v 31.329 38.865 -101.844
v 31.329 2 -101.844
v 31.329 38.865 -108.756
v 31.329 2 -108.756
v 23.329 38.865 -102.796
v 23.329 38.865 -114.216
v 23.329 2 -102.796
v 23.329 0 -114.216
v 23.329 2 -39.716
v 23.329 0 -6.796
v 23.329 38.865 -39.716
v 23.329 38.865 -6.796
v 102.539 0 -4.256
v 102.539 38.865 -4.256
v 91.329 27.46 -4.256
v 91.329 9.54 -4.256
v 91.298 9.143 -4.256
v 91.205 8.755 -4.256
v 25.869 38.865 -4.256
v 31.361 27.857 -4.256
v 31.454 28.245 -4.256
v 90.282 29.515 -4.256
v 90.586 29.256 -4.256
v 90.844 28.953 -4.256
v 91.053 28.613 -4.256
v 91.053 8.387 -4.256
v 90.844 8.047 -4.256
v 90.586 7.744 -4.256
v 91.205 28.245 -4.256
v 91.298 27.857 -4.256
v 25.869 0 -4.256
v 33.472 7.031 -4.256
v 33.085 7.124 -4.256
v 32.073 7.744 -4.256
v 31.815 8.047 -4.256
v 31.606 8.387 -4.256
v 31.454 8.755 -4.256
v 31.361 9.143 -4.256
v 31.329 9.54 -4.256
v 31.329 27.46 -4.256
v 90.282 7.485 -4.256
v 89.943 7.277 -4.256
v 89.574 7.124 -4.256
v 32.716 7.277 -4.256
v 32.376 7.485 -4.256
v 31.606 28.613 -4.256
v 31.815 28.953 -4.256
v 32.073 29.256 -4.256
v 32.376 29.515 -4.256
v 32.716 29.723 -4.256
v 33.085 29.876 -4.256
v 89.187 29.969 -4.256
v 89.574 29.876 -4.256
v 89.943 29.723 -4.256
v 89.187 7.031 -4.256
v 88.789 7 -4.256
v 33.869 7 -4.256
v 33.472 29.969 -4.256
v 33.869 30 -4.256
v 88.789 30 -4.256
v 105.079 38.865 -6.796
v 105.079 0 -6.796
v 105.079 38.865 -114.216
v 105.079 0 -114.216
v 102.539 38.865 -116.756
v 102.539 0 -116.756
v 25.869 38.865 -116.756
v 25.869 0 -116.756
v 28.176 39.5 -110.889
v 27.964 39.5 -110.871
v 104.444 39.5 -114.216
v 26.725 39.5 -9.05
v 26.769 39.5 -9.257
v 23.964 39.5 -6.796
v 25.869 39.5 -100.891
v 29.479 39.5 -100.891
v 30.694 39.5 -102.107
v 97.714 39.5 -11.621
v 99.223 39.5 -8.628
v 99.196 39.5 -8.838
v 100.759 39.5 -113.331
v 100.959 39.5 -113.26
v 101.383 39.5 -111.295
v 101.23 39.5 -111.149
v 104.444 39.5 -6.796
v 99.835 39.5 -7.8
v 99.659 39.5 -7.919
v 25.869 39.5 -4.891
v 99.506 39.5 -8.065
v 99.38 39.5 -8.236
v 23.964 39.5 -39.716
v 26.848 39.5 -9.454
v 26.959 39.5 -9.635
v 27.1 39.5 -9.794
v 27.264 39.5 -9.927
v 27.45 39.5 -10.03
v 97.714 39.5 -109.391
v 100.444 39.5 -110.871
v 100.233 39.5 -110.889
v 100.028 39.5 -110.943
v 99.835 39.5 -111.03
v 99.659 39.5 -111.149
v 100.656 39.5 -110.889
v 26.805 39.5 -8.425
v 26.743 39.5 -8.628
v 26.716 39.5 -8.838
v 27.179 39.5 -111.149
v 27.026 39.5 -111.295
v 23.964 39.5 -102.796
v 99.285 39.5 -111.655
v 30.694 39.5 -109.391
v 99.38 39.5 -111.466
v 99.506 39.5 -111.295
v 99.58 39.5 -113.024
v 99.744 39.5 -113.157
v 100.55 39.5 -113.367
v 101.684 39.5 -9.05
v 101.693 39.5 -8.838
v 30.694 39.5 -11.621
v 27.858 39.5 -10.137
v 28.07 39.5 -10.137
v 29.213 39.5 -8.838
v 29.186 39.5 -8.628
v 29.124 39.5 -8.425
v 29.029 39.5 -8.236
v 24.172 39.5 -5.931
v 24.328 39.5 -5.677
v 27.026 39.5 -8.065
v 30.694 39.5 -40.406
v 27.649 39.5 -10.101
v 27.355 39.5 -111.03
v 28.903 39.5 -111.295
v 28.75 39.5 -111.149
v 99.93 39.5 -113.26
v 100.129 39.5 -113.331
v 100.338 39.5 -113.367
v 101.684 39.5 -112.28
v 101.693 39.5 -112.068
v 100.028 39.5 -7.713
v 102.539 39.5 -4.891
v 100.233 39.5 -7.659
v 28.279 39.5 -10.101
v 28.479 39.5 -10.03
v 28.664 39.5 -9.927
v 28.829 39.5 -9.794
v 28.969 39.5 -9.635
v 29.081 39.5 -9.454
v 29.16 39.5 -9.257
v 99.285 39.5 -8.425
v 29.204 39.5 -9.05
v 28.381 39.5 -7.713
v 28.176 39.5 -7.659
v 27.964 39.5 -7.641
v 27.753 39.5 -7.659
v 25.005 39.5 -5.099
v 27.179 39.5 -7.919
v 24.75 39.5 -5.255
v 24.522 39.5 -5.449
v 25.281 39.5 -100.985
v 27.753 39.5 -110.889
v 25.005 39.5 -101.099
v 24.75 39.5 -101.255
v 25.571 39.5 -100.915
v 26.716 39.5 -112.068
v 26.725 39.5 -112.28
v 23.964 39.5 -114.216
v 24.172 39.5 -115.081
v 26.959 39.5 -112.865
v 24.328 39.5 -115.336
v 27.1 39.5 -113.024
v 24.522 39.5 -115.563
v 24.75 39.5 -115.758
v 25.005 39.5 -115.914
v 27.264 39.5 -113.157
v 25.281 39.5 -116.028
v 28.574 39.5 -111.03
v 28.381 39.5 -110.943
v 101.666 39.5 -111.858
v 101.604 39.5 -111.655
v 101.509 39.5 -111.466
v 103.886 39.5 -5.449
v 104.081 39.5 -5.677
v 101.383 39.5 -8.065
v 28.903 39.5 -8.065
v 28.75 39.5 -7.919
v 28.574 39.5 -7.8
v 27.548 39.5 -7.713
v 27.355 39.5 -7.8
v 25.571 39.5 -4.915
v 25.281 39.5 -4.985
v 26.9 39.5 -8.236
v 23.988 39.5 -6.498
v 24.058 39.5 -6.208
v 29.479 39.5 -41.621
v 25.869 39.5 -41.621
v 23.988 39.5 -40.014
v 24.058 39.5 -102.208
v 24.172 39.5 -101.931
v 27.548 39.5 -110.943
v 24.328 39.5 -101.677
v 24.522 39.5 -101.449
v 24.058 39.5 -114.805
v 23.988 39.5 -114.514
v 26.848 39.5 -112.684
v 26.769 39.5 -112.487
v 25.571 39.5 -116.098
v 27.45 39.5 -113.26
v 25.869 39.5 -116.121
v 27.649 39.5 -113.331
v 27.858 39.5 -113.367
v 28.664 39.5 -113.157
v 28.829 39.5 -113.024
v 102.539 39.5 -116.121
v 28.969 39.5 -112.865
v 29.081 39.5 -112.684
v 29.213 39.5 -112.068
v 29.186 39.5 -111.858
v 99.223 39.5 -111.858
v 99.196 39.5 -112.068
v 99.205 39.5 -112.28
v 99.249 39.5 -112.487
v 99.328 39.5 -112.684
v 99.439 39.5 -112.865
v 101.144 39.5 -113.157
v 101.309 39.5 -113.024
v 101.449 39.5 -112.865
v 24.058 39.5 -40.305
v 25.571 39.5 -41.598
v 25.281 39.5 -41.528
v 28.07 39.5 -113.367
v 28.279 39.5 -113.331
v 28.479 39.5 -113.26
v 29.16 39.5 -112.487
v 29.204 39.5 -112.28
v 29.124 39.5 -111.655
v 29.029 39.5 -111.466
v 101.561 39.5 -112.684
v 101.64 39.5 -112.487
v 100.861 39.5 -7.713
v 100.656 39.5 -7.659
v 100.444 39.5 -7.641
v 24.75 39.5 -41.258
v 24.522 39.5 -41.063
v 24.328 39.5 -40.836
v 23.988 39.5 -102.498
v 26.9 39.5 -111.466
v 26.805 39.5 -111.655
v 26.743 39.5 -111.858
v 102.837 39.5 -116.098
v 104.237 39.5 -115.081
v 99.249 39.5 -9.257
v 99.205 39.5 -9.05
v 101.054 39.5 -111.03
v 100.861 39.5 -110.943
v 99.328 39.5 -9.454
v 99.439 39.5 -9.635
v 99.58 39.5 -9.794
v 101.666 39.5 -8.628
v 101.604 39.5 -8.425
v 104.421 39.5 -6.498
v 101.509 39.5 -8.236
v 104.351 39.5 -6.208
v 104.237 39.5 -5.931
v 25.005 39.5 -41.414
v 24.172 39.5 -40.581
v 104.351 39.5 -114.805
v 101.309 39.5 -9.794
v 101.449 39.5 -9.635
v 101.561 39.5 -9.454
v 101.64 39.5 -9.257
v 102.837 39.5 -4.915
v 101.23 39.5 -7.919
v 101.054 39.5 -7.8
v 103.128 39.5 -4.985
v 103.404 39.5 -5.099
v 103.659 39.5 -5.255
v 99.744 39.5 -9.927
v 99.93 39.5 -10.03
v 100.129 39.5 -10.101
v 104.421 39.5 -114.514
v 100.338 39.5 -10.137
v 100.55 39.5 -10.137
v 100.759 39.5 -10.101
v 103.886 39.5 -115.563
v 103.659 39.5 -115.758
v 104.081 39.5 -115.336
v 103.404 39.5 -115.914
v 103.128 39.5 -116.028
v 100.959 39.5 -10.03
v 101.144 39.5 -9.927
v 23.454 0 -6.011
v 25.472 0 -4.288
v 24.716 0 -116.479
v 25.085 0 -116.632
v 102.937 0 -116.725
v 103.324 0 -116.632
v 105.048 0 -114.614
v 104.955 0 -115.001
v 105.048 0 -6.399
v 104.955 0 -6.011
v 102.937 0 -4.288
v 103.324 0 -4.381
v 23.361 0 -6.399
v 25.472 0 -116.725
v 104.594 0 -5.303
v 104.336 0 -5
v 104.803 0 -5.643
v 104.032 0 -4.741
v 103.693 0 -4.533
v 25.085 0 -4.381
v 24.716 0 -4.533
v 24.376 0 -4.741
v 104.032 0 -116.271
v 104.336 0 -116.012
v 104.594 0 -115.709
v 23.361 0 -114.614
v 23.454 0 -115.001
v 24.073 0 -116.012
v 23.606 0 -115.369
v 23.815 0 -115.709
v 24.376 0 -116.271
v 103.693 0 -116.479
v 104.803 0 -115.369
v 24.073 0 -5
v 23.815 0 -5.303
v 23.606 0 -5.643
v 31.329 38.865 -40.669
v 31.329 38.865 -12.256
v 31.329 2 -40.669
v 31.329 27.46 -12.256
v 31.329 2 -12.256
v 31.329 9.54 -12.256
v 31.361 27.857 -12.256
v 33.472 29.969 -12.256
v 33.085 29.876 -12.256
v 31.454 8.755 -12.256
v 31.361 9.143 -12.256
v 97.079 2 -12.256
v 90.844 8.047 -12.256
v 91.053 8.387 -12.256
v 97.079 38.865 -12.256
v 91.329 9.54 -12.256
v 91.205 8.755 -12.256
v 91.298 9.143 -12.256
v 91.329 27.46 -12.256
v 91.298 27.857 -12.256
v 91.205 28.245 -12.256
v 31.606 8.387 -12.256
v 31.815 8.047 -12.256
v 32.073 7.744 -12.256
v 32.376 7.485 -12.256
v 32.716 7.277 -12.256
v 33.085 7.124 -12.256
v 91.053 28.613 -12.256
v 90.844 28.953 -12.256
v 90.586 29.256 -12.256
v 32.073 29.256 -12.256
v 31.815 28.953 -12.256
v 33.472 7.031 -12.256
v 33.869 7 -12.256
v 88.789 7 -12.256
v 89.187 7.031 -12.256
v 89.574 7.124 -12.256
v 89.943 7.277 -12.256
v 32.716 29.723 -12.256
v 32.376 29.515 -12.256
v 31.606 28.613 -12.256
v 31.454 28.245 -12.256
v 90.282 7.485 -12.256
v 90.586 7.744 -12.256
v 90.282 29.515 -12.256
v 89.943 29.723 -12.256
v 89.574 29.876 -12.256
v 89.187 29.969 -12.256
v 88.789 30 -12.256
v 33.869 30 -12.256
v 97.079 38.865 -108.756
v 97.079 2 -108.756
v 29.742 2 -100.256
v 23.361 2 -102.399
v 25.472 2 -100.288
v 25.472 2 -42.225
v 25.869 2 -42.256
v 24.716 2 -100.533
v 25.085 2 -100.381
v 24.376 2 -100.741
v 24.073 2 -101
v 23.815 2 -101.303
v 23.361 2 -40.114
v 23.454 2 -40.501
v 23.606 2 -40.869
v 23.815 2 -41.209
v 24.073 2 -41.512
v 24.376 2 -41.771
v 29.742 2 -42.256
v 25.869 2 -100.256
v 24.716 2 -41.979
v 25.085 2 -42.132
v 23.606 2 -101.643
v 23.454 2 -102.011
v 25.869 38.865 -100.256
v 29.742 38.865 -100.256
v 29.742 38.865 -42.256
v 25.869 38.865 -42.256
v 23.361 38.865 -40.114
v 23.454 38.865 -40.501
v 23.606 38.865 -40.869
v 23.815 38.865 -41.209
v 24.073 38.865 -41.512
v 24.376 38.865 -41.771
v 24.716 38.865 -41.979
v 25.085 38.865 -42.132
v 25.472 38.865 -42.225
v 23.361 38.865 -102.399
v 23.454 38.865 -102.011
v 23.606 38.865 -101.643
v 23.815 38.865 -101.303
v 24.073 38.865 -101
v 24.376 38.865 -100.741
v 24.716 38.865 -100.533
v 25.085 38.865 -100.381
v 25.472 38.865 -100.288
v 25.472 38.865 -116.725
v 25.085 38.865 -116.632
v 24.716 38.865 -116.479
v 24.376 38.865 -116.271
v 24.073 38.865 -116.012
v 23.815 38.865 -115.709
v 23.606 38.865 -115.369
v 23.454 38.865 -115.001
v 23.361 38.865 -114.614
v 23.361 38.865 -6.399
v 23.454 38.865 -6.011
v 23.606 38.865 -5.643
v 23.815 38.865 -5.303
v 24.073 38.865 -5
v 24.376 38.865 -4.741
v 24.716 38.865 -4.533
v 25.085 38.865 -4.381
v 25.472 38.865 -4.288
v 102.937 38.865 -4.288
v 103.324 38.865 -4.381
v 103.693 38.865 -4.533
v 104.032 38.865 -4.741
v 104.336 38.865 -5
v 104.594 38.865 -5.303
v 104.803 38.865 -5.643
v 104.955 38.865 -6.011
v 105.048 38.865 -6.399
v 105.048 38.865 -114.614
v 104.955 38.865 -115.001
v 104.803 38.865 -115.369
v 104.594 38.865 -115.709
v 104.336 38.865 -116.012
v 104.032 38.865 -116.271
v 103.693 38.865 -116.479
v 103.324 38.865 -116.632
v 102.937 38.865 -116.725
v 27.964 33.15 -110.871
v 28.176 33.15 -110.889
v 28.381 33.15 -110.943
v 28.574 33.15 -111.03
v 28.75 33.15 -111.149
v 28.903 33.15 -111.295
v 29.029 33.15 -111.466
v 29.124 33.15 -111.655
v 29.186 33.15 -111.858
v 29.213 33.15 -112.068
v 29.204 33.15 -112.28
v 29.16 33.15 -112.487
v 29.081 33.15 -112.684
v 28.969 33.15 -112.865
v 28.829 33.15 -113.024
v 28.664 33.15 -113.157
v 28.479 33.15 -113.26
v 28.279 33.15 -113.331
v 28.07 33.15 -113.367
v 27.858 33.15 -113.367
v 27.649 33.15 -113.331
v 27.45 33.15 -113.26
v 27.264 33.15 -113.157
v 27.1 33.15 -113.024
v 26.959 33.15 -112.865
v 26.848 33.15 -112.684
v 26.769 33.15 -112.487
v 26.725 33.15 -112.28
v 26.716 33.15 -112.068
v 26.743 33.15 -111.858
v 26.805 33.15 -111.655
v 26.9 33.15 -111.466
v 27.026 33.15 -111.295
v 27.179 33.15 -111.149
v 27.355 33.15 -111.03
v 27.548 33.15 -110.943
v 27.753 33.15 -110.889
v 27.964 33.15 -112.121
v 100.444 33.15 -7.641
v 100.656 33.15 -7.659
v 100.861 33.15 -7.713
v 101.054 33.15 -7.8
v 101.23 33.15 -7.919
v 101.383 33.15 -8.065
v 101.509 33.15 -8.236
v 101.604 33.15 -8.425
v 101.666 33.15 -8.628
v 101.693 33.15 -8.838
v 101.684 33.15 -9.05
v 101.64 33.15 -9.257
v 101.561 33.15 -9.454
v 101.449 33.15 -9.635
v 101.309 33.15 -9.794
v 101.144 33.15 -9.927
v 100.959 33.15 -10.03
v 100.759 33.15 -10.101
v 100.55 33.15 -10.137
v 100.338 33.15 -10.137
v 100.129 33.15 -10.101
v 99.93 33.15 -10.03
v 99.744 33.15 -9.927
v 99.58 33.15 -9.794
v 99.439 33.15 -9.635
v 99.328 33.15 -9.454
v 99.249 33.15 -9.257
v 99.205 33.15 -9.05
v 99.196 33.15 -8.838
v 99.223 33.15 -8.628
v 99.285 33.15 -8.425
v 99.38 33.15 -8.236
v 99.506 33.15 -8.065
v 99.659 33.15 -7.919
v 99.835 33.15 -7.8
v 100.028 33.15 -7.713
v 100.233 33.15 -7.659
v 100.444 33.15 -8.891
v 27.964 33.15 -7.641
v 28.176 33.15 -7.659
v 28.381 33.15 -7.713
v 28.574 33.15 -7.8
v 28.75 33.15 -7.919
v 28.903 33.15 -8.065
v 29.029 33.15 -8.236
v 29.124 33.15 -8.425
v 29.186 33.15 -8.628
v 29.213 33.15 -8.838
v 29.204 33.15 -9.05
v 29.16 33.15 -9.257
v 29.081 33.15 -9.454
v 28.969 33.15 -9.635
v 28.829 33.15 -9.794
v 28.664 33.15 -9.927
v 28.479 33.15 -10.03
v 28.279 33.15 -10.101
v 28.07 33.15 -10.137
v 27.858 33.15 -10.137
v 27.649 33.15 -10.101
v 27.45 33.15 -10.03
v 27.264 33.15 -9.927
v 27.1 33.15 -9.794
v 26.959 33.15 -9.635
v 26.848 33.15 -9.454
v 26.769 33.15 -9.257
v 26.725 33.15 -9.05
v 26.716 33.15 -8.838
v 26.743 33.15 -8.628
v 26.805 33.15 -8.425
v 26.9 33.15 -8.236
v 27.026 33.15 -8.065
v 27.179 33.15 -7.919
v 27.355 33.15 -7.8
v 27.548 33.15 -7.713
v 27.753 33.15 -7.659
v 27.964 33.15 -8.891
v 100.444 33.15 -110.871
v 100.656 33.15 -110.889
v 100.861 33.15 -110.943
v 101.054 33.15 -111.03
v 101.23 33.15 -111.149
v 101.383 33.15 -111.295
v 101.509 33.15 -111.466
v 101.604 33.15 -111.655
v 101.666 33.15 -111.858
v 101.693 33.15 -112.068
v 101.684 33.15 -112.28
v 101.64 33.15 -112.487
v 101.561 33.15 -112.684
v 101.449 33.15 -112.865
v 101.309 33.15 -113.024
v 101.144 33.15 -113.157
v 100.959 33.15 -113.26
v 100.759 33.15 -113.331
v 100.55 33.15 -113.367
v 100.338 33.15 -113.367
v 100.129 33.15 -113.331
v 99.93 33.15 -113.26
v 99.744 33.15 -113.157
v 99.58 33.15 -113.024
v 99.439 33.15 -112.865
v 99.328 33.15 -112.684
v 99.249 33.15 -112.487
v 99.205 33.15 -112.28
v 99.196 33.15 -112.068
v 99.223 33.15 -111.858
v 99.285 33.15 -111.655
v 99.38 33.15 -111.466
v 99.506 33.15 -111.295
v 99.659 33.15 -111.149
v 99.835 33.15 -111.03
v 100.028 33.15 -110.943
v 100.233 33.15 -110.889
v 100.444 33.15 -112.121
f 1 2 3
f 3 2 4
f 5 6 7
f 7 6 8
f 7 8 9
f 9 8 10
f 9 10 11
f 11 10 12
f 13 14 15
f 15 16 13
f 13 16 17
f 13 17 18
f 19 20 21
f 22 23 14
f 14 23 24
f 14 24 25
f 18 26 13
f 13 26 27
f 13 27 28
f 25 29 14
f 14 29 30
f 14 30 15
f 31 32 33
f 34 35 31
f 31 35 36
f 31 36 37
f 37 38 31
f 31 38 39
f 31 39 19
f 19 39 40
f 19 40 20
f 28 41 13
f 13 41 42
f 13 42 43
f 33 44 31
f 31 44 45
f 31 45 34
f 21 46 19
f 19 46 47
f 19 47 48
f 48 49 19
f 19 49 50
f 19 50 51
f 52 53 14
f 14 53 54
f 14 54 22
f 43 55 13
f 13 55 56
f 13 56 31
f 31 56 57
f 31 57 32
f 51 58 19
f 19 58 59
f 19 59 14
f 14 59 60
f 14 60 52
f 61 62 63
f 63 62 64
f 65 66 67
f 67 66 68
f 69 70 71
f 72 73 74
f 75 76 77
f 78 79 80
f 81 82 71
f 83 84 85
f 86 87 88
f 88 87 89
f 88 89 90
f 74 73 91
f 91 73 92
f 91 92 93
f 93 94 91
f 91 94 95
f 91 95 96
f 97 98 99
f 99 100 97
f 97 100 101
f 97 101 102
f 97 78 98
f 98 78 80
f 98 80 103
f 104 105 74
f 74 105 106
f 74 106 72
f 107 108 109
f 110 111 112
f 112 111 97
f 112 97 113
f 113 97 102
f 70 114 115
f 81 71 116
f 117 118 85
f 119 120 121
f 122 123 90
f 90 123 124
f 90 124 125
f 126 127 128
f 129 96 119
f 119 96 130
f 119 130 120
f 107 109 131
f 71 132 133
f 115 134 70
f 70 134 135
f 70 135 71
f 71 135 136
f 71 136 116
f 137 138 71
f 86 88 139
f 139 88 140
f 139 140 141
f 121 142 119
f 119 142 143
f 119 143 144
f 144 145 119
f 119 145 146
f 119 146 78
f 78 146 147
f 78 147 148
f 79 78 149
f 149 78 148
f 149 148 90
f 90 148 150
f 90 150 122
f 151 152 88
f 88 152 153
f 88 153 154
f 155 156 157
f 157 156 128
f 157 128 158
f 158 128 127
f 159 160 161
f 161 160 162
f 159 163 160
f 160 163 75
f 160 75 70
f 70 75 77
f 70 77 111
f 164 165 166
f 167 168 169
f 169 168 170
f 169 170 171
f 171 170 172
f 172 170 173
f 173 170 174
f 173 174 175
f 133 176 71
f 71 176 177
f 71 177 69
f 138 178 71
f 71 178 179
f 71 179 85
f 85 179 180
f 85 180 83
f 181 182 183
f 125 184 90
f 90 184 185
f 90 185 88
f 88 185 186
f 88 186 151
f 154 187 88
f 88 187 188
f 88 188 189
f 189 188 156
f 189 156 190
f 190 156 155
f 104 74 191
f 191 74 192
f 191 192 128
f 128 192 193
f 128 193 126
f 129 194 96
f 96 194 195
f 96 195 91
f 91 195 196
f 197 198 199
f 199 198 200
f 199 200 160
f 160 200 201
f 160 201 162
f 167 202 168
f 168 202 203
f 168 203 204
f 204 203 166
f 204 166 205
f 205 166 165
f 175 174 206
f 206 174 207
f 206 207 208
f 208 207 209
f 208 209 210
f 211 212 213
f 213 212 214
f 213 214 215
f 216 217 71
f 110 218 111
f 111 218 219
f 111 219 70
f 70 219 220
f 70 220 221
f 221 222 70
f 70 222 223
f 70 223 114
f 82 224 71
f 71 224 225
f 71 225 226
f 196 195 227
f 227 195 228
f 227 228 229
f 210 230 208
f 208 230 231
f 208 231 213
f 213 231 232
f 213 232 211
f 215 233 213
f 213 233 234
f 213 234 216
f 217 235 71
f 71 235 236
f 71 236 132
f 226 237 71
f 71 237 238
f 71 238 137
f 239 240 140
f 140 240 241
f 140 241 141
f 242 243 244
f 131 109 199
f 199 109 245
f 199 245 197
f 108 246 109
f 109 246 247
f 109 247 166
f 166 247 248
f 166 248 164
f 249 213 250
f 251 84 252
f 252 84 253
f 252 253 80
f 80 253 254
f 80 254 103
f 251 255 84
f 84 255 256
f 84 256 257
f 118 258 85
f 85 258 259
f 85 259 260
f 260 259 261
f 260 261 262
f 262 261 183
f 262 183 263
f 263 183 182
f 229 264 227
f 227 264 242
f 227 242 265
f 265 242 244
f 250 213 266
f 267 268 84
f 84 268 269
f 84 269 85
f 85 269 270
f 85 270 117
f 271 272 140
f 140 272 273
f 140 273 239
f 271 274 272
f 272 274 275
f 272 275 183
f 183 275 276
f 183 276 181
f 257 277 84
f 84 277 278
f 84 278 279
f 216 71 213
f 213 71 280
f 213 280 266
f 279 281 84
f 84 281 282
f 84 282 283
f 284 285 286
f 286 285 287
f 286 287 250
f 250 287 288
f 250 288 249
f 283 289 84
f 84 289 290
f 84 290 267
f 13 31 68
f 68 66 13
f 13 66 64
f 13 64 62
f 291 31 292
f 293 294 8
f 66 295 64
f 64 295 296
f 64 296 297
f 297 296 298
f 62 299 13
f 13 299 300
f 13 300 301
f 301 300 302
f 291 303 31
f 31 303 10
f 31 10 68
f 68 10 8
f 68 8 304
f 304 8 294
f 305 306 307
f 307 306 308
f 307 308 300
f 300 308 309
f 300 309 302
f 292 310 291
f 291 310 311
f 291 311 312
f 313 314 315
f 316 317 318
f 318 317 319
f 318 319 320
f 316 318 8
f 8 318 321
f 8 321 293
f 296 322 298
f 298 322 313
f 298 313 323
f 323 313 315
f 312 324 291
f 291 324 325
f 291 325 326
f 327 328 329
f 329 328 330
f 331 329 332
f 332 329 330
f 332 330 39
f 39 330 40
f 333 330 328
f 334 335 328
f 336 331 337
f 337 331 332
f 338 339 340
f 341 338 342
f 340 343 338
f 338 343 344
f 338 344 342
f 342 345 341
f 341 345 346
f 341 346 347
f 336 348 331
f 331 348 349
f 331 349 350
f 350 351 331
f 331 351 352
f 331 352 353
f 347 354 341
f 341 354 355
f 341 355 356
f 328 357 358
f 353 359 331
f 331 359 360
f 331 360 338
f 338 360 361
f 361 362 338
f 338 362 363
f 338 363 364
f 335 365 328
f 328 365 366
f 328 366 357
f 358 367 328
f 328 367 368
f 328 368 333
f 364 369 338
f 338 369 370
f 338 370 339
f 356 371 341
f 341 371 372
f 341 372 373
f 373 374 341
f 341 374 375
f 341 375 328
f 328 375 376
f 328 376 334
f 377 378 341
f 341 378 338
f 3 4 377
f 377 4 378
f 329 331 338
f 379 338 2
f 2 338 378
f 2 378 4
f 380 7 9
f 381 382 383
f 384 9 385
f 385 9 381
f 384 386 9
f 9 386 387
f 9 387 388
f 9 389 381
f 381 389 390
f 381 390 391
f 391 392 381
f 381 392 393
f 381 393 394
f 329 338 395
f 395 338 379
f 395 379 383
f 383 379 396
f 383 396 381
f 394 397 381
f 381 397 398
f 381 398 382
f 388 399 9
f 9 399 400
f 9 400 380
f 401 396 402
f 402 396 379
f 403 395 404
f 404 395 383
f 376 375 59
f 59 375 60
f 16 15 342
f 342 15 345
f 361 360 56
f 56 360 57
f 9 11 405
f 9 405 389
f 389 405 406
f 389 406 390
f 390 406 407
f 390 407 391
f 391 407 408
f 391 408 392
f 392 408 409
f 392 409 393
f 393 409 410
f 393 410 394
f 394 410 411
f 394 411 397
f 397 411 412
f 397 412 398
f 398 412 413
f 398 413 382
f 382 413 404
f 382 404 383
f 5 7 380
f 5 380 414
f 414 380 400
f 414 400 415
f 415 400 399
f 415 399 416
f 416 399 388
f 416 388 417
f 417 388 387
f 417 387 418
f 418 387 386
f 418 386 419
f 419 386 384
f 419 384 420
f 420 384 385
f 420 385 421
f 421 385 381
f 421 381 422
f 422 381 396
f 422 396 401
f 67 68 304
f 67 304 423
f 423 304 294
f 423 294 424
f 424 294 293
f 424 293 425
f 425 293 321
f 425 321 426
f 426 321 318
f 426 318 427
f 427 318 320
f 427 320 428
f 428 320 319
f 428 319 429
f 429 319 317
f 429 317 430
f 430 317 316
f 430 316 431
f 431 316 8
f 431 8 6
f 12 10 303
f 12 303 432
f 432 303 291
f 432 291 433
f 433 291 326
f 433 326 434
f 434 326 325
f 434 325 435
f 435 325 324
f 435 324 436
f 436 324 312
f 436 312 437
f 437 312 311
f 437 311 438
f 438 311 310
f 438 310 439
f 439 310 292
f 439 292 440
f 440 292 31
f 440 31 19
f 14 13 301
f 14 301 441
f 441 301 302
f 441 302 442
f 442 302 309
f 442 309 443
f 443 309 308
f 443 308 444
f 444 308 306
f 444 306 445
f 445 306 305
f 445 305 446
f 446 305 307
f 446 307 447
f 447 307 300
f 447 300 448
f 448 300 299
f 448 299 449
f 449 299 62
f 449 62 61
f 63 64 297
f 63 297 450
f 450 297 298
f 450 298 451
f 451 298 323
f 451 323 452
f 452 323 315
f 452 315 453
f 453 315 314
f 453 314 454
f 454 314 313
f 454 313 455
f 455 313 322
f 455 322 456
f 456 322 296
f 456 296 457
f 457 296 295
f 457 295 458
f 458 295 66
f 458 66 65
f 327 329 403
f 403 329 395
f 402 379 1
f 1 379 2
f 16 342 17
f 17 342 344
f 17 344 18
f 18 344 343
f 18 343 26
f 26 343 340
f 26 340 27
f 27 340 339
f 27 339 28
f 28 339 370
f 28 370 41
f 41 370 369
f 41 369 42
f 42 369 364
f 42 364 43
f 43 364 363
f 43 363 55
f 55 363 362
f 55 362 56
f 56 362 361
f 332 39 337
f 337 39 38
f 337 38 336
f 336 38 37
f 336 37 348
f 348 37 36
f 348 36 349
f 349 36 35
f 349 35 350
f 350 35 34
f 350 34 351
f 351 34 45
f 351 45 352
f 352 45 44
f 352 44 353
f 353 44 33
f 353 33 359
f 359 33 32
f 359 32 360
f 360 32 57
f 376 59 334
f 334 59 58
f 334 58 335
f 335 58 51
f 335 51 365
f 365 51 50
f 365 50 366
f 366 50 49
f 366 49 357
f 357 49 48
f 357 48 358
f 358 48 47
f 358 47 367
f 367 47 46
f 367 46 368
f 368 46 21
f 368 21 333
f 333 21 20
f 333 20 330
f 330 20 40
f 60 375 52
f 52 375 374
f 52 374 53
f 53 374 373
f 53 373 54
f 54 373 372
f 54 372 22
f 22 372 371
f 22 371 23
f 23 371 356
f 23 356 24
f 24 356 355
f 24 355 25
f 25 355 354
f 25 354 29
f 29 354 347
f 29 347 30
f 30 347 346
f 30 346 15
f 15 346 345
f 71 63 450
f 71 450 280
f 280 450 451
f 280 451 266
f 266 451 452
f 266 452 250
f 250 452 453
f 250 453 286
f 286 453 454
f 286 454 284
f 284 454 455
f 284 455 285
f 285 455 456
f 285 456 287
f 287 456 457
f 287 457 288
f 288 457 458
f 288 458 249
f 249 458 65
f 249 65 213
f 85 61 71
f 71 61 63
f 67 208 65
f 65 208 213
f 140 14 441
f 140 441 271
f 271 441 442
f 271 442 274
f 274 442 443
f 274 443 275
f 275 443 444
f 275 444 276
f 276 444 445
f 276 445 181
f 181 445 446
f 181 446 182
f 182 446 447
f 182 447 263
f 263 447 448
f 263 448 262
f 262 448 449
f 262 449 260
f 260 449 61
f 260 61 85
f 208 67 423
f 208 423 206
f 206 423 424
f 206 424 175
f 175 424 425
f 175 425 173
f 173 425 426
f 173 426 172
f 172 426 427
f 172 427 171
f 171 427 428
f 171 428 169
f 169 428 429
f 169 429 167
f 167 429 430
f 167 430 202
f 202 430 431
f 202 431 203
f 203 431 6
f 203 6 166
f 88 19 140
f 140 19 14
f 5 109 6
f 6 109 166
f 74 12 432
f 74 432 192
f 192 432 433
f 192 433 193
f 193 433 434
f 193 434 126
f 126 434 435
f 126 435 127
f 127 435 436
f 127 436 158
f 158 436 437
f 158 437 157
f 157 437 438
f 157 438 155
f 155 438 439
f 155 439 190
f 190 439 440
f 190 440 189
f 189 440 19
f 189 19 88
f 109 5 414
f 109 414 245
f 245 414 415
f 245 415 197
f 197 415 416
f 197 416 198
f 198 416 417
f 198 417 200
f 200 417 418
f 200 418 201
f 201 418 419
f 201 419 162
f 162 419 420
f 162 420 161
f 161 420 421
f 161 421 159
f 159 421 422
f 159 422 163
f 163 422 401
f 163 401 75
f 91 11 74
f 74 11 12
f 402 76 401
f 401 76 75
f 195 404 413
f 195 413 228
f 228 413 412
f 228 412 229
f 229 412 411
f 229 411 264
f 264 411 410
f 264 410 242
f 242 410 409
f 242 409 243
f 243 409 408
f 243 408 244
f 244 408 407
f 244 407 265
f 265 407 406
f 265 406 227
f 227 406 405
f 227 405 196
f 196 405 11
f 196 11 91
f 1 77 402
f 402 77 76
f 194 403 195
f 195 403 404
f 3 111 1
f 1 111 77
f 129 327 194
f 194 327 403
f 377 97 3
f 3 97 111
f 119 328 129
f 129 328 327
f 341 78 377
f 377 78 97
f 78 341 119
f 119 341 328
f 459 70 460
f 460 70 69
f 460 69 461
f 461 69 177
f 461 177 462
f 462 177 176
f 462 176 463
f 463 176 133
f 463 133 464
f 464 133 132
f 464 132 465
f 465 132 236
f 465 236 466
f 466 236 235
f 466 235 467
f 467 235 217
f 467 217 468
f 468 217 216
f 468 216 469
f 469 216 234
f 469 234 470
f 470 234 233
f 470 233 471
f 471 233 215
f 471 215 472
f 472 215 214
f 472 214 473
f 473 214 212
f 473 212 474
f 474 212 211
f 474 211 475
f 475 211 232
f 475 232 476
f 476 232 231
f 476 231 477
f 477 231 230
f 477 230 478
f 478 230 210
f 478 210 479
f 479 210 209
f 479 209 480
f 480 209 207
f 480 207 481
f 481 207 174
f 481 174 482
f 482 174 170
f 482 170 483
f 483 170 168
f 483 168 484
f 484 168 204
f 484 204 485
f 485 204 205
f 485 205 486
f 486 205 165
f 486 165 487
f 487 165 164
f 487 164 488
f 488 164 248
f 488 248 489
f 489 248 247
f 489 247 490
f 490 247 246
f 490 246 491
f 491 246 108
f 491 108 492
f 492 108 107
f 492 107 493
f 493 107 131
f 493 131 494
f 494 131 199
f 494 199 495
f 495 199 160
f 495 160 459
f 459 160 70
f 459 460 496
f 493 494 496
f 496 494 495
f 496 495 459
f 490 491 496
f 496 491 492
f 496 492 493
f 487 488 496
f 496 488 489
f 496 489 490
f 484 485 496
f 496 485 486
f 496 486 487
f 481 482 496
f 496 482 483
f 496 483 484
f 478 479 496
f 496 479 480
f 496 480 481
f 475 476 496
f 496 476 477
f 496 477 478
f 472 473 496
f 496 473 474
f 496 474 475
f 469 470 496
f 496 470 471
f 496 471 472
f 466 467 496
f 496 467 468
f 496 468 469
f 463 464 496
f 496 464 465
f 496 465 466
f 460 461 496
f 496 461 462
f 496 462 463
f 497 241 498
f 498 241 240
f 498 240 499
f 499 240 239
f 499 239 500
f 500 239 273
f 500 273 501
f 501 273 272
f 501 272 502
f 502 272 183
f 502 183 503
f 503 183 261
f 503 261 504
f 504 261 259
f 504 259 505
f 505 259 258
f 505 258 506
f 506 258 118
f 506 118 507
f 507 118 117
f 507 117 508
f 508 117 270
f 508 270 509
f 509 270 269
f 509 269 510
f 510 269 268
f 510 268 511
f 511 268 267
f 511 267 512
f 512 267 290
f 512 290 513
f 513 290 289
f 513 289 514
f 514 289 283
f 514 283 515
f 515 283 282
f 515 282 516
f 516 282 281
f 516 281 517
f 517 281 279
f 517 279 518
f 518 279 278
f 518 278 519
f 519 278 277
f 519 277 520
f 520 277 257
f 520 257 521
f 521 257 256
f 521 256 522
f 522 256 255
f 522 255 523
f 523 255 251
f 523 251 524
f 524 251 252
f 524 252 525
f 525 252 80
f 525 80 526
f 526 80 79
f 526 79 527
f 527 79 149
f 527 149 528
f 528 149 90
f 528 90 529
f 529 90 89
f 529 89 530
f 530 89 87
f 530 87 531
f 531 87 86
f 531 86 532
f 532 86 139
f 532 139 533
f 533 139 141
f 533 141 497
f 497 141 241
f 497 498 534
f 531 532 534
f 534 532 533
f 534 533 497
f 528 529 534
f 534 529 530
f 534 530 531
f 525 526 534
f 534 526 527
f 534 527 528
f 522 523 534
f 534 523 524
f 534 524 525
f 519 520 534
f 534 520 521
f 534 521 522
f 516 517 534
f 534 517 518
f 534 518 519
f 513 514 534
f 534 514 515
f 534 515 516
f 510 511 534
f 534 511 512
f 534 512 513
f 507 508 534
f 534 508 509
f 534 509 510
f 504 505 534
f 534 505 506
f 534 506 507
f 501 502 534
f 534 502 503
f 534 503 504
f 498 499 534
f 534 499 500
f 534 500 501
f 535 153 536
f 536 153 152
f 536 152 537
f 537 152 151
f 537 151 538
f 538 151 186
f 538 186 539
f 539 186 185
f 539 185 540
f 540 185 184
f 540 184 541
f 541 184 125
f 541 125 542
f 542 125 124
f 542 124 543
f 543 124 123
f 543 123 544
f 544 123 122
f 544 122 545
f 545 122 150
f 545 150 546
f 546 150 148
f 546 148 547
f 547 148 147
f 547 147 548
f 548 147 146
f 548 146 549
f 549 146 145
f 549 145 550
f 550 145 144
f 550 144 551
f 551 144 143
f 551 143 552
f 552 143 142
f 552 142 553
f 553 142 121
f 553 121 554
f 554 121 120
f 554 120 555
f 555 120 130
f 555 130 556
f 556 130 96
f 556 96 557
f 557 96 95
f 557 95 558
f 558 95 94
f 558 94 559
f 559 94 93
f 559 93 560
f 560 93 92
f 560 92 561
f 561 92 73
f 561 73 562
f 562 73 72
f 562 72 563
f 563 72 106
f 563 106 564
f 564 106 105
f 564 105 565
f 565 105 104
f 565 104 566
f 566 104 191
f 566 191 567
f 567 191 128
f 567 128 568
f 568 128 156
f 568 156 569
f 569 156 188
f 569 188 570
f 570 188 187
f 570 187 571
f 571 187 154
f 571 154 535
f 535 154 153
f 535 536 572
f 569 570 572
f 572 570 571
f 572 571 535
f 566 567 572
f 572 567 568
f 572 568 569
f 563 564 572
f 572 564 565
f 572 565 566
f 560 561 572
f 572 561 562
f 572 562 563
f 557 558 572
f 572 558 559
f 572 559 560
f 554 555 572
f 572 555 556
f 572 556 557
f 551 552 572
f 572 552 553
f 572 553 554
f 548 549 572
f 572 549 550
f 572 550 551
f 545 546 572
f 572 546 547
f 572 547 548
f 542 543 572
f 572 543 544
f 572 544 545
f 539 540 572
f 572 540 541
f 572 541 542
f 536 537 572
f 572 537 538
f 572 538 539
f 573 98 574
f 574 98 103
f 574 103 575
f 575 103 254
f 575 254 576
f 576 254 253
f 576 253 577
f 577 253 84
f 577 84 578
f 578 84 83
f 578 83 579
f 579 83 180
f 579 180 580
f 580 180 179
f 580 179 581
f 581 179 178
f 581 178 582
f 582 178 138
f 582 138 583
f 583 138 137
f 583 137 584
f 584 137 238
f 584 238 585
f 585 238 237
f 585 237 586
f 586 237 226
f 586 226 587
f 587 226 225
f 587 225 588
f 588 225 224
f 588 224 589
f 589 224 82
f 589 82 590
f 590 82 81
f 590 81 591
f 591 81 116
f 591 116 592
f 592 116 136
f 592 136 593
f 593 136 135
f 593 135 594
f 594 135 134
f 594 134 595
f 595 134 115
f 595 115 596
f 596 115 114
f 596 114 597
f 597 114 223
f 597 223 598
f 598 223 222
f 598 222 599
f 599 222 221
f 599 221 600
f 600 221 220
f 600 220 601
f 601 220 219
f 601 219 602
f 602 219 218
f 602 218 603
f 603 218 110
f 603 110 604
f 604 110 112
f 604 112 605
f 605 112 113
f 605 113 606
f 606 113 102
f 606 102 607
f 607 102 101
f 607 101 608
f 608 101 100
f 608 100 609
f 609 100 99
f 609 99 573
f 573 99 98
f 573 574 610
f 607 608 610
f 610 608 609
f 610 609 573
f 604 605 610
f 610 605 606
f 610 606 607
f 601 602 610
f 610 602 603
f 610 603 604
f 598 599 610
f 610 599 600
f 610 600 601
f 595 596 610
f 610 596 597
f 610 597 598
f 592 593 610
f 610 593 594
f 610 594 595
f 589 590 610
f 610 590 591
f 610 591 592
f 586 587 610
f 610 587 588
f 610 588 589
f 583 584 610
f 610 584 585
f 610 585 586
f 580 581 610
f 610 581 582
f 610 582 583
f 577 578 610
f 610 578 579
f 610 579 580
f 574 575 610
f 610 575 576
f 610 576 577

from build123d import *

# Parameters (mm, degrees)
SKETCH1_W                 = 81.750000004
SKETCH1_H                 = 112.500000004
BOSS_EXTRUDE3_DEPTH       = 39.5
SHELL1_T                  = -8.000000002
SHELL1_THICKNESS_2_FACE_W = 96.5
SHELL1_THICKNESS_2_FACE_H = 65.75
SHELL1_THICKNESS_2_DEPTH  = 6.000000002
CUT_EXTRUDE1_REACH        = 149.903
SKETCH2_W                 = 58
SKETCH2_H                 = 37.5
CUT_EXTRUDE2_REACH        = 160.928
SKETCH3_W                 = 60
SKETCH3_H                 = 23
FILLET1_R                 = 2.54
CHAMFER1_SIZE             = 1.5875
FILLET2_R                 = 2.54
CHAMFER2_SIZE             = 0.635
SKETCH4_R                 = 1.25
CUT_EXTRUDE3_DEPTH        = 6.35


with BuildPart() as part:
    # Sketch1 → Boss-Extrude3 (new body)
    with BuildSketch(Plane(origin=(0, 0, 0), x_dir=(1, 0, 0), z_dir=(0, 1, 0))):
        with Locations((64.204457377, 60.506337211)):
            Rectangle(SKETCH1_W, SKETCH1_H)
    extrude(amount=BOSS_EXTRUDE3_DEPTH)

    # Shell1
    shell1_openings = [part.faces().sort_by_distance(p)[0] for p in [
        (64.204457377, 39.5, -60.506337211),
    ]]
    offset(amount=SHELL1_T, openings=shell1_openings, kind=Kind.INTERSECTION)

    # Shell1 thickness 2 face (on inner face of the shell) → Shell1 thickness 2 (cut)
    with BuildSketch(Plane(origin=(64.204457377, 8.000000002, -60.506337211), x_dir=(0, 0, -1), z_dir=(0, -1, 0))):
        Rectangle(SHELL1_THICKNESS_2_FACE_W, SHELL1_THICKNESS_2_FACE_H)
    extrude(amount=SHELL1_THICKNESS_2_DEPTH, mode=Mode.SUBTRACT)

    # Sketch2 → Cut-Extrude1 (cut, up to next)
    with BuildSketch(Plane.ZY.offset(-23.329457375), mode=Mode.PRIVATE) as cut_extrude1_sk1:
        with Locations((-71.256337211, 20.75)):
            Rectangle(SKETCH2_W, SKETCH2_H)
    cut_extrude1_tool1 = extrude(cut_extrude1_sk1.sketch, amount=-CUT_EXTRUDE1_REACH, mode=Mode.PRIVATE) & part.part
    add(cut_extrude1_tool1.solids().sort_by_distance((23.329457, 20.75, -71.256337))[0], mode=Mode.SUBTRACT)

    # Sketch3 → Cut-Extrude2 (cut, up to next)
    with BuildSketch(Plane.XY.offset(-4.256337209), mode=Mode.PRIVATE) as cut_extrude2_sk1:
        with Locations((61.329457377, 18.5)):
            Rectangle(SKETCH3_W, SKETCH3_H)
    cut_extrude2_tool1 = extrude(cut_extrude2_sk1.sketch, amount=-CUT_EXTRUDE2_REACH, mode=Mode.PRIVATE) & part.part
    add(cut_extrude2_tool1.solids().sort_by_distance((61.329457, 18.5, -4.256337))[0], mode=Mode.SUBTRACT)

    # Fillet1
    fillet1_edges = [part.edges().sort_by_distance(p)[0] for p in [
        (23.329457375, 20.75, -100.256337211),
        (23.329457375, 20.75, -42.256337211),
        (23.329457375, 19.75, -116.756337213),
        (105.079457379, 19.75, -116.756337213),
        (105.079457379, 19.75, -4.256337209),
        (23.329457375, 19.75, -4.256337209),
    ]]
    fillet(fillet1_edges, radius=FILLET1_R)

    # Chamfer1
    chamfer1_edges = [part.edges().sort_by_distance(p)[0] for p in [
        (31.329457377, 20.75, -100.256337211),
        (31.329457377, 20.75, -42.256337211),
    ]]
    chamfer(chamfer1_edges, length=CHAMFER1_SIZE)

    # Fillet2
    fillet2_edges = [part.edges().sort_by_distance(p)[0] for p in [
        (31.329457377, 7, -8.25633721),
        (31.329457377, 30, -8.25633721),
        (91.329457377, 30, -8.25633721),
        (91.329457377, 7, -8.25633721),
    ]]
    fillet(fillet2_edges, radius=FILLET2_R)

    # Chamfer2
    chamfer2_edges = [part.edges().sort_by_distance(p)[0] for p in [
        (31.329457377, 39.5, -26.462587211),
        (27.805707376, 39.5, -42.256337211),
        (27.805707376, 39.5, -100.256337211),
        (30.535707377, 39.5, -101.050087211),
        (30.535707377, 39.5, -41.462587211),
        (31.329457377, 39.5, -105.300087211),
        (64.204457377, 39.5, -12.256337211),
        (97.079457377, 39.5, -60.506337211),
        (64.204457377, 39.5, -108.756337211),
        (23.329457375, 39.5, -23.25633721),
        (64.204457377, 39.5, -4.256337209),
        (105.079457379, 39.5, -60.506337211),
        (64.204457377, 39.5, -116.756337213),
        (23.329457375, 39.5, -108.506337212),
        (104.335508603, 39.5, -116.012388437),
        (104.335508603, 39.5, -5.000285984),
        (24.073406151, 39.5, -5.000285984),
        (24.073406151, 39.5, -116.012388437),
        (24.073406151, 39.5, -101.000285986),
        (24.073406151, 39.5, -41.512388435),
    ]]
    chamfer(chamfer2_edges, length=CHAMFER2_SIZE)

    # Sketch4 → Cut-Extrude3 (cut)
    with BuildSketch(Plane(origin=(0, 39.5, 0), x_dir=(1, 0, 0), z_dir=(0, 1, 0))):
        with Locations(Location((27.964457375, 112.121337213, 0), (0, 0, 270))):
            Circle(SKETCH4_R)
        with Locations(Location((100.444457379, 112.121337213, 0), (0, 0, 270))):
            Circle(SKETCH4_R)
        with Locations(Location((27.964457375, 8.891337209, 0), (0, 0, 270))):
            Circle(SKETCH4_R)
        with Locations(Location((100.444457379, 8.891337209, 0), (0, 0, 270))):
            Circle(SKETCH4_R)
    extrude(amount=-CUT_EXTRUDE3_DEPTH, mode=Mode.SUBTRACT)


solid = part.part
